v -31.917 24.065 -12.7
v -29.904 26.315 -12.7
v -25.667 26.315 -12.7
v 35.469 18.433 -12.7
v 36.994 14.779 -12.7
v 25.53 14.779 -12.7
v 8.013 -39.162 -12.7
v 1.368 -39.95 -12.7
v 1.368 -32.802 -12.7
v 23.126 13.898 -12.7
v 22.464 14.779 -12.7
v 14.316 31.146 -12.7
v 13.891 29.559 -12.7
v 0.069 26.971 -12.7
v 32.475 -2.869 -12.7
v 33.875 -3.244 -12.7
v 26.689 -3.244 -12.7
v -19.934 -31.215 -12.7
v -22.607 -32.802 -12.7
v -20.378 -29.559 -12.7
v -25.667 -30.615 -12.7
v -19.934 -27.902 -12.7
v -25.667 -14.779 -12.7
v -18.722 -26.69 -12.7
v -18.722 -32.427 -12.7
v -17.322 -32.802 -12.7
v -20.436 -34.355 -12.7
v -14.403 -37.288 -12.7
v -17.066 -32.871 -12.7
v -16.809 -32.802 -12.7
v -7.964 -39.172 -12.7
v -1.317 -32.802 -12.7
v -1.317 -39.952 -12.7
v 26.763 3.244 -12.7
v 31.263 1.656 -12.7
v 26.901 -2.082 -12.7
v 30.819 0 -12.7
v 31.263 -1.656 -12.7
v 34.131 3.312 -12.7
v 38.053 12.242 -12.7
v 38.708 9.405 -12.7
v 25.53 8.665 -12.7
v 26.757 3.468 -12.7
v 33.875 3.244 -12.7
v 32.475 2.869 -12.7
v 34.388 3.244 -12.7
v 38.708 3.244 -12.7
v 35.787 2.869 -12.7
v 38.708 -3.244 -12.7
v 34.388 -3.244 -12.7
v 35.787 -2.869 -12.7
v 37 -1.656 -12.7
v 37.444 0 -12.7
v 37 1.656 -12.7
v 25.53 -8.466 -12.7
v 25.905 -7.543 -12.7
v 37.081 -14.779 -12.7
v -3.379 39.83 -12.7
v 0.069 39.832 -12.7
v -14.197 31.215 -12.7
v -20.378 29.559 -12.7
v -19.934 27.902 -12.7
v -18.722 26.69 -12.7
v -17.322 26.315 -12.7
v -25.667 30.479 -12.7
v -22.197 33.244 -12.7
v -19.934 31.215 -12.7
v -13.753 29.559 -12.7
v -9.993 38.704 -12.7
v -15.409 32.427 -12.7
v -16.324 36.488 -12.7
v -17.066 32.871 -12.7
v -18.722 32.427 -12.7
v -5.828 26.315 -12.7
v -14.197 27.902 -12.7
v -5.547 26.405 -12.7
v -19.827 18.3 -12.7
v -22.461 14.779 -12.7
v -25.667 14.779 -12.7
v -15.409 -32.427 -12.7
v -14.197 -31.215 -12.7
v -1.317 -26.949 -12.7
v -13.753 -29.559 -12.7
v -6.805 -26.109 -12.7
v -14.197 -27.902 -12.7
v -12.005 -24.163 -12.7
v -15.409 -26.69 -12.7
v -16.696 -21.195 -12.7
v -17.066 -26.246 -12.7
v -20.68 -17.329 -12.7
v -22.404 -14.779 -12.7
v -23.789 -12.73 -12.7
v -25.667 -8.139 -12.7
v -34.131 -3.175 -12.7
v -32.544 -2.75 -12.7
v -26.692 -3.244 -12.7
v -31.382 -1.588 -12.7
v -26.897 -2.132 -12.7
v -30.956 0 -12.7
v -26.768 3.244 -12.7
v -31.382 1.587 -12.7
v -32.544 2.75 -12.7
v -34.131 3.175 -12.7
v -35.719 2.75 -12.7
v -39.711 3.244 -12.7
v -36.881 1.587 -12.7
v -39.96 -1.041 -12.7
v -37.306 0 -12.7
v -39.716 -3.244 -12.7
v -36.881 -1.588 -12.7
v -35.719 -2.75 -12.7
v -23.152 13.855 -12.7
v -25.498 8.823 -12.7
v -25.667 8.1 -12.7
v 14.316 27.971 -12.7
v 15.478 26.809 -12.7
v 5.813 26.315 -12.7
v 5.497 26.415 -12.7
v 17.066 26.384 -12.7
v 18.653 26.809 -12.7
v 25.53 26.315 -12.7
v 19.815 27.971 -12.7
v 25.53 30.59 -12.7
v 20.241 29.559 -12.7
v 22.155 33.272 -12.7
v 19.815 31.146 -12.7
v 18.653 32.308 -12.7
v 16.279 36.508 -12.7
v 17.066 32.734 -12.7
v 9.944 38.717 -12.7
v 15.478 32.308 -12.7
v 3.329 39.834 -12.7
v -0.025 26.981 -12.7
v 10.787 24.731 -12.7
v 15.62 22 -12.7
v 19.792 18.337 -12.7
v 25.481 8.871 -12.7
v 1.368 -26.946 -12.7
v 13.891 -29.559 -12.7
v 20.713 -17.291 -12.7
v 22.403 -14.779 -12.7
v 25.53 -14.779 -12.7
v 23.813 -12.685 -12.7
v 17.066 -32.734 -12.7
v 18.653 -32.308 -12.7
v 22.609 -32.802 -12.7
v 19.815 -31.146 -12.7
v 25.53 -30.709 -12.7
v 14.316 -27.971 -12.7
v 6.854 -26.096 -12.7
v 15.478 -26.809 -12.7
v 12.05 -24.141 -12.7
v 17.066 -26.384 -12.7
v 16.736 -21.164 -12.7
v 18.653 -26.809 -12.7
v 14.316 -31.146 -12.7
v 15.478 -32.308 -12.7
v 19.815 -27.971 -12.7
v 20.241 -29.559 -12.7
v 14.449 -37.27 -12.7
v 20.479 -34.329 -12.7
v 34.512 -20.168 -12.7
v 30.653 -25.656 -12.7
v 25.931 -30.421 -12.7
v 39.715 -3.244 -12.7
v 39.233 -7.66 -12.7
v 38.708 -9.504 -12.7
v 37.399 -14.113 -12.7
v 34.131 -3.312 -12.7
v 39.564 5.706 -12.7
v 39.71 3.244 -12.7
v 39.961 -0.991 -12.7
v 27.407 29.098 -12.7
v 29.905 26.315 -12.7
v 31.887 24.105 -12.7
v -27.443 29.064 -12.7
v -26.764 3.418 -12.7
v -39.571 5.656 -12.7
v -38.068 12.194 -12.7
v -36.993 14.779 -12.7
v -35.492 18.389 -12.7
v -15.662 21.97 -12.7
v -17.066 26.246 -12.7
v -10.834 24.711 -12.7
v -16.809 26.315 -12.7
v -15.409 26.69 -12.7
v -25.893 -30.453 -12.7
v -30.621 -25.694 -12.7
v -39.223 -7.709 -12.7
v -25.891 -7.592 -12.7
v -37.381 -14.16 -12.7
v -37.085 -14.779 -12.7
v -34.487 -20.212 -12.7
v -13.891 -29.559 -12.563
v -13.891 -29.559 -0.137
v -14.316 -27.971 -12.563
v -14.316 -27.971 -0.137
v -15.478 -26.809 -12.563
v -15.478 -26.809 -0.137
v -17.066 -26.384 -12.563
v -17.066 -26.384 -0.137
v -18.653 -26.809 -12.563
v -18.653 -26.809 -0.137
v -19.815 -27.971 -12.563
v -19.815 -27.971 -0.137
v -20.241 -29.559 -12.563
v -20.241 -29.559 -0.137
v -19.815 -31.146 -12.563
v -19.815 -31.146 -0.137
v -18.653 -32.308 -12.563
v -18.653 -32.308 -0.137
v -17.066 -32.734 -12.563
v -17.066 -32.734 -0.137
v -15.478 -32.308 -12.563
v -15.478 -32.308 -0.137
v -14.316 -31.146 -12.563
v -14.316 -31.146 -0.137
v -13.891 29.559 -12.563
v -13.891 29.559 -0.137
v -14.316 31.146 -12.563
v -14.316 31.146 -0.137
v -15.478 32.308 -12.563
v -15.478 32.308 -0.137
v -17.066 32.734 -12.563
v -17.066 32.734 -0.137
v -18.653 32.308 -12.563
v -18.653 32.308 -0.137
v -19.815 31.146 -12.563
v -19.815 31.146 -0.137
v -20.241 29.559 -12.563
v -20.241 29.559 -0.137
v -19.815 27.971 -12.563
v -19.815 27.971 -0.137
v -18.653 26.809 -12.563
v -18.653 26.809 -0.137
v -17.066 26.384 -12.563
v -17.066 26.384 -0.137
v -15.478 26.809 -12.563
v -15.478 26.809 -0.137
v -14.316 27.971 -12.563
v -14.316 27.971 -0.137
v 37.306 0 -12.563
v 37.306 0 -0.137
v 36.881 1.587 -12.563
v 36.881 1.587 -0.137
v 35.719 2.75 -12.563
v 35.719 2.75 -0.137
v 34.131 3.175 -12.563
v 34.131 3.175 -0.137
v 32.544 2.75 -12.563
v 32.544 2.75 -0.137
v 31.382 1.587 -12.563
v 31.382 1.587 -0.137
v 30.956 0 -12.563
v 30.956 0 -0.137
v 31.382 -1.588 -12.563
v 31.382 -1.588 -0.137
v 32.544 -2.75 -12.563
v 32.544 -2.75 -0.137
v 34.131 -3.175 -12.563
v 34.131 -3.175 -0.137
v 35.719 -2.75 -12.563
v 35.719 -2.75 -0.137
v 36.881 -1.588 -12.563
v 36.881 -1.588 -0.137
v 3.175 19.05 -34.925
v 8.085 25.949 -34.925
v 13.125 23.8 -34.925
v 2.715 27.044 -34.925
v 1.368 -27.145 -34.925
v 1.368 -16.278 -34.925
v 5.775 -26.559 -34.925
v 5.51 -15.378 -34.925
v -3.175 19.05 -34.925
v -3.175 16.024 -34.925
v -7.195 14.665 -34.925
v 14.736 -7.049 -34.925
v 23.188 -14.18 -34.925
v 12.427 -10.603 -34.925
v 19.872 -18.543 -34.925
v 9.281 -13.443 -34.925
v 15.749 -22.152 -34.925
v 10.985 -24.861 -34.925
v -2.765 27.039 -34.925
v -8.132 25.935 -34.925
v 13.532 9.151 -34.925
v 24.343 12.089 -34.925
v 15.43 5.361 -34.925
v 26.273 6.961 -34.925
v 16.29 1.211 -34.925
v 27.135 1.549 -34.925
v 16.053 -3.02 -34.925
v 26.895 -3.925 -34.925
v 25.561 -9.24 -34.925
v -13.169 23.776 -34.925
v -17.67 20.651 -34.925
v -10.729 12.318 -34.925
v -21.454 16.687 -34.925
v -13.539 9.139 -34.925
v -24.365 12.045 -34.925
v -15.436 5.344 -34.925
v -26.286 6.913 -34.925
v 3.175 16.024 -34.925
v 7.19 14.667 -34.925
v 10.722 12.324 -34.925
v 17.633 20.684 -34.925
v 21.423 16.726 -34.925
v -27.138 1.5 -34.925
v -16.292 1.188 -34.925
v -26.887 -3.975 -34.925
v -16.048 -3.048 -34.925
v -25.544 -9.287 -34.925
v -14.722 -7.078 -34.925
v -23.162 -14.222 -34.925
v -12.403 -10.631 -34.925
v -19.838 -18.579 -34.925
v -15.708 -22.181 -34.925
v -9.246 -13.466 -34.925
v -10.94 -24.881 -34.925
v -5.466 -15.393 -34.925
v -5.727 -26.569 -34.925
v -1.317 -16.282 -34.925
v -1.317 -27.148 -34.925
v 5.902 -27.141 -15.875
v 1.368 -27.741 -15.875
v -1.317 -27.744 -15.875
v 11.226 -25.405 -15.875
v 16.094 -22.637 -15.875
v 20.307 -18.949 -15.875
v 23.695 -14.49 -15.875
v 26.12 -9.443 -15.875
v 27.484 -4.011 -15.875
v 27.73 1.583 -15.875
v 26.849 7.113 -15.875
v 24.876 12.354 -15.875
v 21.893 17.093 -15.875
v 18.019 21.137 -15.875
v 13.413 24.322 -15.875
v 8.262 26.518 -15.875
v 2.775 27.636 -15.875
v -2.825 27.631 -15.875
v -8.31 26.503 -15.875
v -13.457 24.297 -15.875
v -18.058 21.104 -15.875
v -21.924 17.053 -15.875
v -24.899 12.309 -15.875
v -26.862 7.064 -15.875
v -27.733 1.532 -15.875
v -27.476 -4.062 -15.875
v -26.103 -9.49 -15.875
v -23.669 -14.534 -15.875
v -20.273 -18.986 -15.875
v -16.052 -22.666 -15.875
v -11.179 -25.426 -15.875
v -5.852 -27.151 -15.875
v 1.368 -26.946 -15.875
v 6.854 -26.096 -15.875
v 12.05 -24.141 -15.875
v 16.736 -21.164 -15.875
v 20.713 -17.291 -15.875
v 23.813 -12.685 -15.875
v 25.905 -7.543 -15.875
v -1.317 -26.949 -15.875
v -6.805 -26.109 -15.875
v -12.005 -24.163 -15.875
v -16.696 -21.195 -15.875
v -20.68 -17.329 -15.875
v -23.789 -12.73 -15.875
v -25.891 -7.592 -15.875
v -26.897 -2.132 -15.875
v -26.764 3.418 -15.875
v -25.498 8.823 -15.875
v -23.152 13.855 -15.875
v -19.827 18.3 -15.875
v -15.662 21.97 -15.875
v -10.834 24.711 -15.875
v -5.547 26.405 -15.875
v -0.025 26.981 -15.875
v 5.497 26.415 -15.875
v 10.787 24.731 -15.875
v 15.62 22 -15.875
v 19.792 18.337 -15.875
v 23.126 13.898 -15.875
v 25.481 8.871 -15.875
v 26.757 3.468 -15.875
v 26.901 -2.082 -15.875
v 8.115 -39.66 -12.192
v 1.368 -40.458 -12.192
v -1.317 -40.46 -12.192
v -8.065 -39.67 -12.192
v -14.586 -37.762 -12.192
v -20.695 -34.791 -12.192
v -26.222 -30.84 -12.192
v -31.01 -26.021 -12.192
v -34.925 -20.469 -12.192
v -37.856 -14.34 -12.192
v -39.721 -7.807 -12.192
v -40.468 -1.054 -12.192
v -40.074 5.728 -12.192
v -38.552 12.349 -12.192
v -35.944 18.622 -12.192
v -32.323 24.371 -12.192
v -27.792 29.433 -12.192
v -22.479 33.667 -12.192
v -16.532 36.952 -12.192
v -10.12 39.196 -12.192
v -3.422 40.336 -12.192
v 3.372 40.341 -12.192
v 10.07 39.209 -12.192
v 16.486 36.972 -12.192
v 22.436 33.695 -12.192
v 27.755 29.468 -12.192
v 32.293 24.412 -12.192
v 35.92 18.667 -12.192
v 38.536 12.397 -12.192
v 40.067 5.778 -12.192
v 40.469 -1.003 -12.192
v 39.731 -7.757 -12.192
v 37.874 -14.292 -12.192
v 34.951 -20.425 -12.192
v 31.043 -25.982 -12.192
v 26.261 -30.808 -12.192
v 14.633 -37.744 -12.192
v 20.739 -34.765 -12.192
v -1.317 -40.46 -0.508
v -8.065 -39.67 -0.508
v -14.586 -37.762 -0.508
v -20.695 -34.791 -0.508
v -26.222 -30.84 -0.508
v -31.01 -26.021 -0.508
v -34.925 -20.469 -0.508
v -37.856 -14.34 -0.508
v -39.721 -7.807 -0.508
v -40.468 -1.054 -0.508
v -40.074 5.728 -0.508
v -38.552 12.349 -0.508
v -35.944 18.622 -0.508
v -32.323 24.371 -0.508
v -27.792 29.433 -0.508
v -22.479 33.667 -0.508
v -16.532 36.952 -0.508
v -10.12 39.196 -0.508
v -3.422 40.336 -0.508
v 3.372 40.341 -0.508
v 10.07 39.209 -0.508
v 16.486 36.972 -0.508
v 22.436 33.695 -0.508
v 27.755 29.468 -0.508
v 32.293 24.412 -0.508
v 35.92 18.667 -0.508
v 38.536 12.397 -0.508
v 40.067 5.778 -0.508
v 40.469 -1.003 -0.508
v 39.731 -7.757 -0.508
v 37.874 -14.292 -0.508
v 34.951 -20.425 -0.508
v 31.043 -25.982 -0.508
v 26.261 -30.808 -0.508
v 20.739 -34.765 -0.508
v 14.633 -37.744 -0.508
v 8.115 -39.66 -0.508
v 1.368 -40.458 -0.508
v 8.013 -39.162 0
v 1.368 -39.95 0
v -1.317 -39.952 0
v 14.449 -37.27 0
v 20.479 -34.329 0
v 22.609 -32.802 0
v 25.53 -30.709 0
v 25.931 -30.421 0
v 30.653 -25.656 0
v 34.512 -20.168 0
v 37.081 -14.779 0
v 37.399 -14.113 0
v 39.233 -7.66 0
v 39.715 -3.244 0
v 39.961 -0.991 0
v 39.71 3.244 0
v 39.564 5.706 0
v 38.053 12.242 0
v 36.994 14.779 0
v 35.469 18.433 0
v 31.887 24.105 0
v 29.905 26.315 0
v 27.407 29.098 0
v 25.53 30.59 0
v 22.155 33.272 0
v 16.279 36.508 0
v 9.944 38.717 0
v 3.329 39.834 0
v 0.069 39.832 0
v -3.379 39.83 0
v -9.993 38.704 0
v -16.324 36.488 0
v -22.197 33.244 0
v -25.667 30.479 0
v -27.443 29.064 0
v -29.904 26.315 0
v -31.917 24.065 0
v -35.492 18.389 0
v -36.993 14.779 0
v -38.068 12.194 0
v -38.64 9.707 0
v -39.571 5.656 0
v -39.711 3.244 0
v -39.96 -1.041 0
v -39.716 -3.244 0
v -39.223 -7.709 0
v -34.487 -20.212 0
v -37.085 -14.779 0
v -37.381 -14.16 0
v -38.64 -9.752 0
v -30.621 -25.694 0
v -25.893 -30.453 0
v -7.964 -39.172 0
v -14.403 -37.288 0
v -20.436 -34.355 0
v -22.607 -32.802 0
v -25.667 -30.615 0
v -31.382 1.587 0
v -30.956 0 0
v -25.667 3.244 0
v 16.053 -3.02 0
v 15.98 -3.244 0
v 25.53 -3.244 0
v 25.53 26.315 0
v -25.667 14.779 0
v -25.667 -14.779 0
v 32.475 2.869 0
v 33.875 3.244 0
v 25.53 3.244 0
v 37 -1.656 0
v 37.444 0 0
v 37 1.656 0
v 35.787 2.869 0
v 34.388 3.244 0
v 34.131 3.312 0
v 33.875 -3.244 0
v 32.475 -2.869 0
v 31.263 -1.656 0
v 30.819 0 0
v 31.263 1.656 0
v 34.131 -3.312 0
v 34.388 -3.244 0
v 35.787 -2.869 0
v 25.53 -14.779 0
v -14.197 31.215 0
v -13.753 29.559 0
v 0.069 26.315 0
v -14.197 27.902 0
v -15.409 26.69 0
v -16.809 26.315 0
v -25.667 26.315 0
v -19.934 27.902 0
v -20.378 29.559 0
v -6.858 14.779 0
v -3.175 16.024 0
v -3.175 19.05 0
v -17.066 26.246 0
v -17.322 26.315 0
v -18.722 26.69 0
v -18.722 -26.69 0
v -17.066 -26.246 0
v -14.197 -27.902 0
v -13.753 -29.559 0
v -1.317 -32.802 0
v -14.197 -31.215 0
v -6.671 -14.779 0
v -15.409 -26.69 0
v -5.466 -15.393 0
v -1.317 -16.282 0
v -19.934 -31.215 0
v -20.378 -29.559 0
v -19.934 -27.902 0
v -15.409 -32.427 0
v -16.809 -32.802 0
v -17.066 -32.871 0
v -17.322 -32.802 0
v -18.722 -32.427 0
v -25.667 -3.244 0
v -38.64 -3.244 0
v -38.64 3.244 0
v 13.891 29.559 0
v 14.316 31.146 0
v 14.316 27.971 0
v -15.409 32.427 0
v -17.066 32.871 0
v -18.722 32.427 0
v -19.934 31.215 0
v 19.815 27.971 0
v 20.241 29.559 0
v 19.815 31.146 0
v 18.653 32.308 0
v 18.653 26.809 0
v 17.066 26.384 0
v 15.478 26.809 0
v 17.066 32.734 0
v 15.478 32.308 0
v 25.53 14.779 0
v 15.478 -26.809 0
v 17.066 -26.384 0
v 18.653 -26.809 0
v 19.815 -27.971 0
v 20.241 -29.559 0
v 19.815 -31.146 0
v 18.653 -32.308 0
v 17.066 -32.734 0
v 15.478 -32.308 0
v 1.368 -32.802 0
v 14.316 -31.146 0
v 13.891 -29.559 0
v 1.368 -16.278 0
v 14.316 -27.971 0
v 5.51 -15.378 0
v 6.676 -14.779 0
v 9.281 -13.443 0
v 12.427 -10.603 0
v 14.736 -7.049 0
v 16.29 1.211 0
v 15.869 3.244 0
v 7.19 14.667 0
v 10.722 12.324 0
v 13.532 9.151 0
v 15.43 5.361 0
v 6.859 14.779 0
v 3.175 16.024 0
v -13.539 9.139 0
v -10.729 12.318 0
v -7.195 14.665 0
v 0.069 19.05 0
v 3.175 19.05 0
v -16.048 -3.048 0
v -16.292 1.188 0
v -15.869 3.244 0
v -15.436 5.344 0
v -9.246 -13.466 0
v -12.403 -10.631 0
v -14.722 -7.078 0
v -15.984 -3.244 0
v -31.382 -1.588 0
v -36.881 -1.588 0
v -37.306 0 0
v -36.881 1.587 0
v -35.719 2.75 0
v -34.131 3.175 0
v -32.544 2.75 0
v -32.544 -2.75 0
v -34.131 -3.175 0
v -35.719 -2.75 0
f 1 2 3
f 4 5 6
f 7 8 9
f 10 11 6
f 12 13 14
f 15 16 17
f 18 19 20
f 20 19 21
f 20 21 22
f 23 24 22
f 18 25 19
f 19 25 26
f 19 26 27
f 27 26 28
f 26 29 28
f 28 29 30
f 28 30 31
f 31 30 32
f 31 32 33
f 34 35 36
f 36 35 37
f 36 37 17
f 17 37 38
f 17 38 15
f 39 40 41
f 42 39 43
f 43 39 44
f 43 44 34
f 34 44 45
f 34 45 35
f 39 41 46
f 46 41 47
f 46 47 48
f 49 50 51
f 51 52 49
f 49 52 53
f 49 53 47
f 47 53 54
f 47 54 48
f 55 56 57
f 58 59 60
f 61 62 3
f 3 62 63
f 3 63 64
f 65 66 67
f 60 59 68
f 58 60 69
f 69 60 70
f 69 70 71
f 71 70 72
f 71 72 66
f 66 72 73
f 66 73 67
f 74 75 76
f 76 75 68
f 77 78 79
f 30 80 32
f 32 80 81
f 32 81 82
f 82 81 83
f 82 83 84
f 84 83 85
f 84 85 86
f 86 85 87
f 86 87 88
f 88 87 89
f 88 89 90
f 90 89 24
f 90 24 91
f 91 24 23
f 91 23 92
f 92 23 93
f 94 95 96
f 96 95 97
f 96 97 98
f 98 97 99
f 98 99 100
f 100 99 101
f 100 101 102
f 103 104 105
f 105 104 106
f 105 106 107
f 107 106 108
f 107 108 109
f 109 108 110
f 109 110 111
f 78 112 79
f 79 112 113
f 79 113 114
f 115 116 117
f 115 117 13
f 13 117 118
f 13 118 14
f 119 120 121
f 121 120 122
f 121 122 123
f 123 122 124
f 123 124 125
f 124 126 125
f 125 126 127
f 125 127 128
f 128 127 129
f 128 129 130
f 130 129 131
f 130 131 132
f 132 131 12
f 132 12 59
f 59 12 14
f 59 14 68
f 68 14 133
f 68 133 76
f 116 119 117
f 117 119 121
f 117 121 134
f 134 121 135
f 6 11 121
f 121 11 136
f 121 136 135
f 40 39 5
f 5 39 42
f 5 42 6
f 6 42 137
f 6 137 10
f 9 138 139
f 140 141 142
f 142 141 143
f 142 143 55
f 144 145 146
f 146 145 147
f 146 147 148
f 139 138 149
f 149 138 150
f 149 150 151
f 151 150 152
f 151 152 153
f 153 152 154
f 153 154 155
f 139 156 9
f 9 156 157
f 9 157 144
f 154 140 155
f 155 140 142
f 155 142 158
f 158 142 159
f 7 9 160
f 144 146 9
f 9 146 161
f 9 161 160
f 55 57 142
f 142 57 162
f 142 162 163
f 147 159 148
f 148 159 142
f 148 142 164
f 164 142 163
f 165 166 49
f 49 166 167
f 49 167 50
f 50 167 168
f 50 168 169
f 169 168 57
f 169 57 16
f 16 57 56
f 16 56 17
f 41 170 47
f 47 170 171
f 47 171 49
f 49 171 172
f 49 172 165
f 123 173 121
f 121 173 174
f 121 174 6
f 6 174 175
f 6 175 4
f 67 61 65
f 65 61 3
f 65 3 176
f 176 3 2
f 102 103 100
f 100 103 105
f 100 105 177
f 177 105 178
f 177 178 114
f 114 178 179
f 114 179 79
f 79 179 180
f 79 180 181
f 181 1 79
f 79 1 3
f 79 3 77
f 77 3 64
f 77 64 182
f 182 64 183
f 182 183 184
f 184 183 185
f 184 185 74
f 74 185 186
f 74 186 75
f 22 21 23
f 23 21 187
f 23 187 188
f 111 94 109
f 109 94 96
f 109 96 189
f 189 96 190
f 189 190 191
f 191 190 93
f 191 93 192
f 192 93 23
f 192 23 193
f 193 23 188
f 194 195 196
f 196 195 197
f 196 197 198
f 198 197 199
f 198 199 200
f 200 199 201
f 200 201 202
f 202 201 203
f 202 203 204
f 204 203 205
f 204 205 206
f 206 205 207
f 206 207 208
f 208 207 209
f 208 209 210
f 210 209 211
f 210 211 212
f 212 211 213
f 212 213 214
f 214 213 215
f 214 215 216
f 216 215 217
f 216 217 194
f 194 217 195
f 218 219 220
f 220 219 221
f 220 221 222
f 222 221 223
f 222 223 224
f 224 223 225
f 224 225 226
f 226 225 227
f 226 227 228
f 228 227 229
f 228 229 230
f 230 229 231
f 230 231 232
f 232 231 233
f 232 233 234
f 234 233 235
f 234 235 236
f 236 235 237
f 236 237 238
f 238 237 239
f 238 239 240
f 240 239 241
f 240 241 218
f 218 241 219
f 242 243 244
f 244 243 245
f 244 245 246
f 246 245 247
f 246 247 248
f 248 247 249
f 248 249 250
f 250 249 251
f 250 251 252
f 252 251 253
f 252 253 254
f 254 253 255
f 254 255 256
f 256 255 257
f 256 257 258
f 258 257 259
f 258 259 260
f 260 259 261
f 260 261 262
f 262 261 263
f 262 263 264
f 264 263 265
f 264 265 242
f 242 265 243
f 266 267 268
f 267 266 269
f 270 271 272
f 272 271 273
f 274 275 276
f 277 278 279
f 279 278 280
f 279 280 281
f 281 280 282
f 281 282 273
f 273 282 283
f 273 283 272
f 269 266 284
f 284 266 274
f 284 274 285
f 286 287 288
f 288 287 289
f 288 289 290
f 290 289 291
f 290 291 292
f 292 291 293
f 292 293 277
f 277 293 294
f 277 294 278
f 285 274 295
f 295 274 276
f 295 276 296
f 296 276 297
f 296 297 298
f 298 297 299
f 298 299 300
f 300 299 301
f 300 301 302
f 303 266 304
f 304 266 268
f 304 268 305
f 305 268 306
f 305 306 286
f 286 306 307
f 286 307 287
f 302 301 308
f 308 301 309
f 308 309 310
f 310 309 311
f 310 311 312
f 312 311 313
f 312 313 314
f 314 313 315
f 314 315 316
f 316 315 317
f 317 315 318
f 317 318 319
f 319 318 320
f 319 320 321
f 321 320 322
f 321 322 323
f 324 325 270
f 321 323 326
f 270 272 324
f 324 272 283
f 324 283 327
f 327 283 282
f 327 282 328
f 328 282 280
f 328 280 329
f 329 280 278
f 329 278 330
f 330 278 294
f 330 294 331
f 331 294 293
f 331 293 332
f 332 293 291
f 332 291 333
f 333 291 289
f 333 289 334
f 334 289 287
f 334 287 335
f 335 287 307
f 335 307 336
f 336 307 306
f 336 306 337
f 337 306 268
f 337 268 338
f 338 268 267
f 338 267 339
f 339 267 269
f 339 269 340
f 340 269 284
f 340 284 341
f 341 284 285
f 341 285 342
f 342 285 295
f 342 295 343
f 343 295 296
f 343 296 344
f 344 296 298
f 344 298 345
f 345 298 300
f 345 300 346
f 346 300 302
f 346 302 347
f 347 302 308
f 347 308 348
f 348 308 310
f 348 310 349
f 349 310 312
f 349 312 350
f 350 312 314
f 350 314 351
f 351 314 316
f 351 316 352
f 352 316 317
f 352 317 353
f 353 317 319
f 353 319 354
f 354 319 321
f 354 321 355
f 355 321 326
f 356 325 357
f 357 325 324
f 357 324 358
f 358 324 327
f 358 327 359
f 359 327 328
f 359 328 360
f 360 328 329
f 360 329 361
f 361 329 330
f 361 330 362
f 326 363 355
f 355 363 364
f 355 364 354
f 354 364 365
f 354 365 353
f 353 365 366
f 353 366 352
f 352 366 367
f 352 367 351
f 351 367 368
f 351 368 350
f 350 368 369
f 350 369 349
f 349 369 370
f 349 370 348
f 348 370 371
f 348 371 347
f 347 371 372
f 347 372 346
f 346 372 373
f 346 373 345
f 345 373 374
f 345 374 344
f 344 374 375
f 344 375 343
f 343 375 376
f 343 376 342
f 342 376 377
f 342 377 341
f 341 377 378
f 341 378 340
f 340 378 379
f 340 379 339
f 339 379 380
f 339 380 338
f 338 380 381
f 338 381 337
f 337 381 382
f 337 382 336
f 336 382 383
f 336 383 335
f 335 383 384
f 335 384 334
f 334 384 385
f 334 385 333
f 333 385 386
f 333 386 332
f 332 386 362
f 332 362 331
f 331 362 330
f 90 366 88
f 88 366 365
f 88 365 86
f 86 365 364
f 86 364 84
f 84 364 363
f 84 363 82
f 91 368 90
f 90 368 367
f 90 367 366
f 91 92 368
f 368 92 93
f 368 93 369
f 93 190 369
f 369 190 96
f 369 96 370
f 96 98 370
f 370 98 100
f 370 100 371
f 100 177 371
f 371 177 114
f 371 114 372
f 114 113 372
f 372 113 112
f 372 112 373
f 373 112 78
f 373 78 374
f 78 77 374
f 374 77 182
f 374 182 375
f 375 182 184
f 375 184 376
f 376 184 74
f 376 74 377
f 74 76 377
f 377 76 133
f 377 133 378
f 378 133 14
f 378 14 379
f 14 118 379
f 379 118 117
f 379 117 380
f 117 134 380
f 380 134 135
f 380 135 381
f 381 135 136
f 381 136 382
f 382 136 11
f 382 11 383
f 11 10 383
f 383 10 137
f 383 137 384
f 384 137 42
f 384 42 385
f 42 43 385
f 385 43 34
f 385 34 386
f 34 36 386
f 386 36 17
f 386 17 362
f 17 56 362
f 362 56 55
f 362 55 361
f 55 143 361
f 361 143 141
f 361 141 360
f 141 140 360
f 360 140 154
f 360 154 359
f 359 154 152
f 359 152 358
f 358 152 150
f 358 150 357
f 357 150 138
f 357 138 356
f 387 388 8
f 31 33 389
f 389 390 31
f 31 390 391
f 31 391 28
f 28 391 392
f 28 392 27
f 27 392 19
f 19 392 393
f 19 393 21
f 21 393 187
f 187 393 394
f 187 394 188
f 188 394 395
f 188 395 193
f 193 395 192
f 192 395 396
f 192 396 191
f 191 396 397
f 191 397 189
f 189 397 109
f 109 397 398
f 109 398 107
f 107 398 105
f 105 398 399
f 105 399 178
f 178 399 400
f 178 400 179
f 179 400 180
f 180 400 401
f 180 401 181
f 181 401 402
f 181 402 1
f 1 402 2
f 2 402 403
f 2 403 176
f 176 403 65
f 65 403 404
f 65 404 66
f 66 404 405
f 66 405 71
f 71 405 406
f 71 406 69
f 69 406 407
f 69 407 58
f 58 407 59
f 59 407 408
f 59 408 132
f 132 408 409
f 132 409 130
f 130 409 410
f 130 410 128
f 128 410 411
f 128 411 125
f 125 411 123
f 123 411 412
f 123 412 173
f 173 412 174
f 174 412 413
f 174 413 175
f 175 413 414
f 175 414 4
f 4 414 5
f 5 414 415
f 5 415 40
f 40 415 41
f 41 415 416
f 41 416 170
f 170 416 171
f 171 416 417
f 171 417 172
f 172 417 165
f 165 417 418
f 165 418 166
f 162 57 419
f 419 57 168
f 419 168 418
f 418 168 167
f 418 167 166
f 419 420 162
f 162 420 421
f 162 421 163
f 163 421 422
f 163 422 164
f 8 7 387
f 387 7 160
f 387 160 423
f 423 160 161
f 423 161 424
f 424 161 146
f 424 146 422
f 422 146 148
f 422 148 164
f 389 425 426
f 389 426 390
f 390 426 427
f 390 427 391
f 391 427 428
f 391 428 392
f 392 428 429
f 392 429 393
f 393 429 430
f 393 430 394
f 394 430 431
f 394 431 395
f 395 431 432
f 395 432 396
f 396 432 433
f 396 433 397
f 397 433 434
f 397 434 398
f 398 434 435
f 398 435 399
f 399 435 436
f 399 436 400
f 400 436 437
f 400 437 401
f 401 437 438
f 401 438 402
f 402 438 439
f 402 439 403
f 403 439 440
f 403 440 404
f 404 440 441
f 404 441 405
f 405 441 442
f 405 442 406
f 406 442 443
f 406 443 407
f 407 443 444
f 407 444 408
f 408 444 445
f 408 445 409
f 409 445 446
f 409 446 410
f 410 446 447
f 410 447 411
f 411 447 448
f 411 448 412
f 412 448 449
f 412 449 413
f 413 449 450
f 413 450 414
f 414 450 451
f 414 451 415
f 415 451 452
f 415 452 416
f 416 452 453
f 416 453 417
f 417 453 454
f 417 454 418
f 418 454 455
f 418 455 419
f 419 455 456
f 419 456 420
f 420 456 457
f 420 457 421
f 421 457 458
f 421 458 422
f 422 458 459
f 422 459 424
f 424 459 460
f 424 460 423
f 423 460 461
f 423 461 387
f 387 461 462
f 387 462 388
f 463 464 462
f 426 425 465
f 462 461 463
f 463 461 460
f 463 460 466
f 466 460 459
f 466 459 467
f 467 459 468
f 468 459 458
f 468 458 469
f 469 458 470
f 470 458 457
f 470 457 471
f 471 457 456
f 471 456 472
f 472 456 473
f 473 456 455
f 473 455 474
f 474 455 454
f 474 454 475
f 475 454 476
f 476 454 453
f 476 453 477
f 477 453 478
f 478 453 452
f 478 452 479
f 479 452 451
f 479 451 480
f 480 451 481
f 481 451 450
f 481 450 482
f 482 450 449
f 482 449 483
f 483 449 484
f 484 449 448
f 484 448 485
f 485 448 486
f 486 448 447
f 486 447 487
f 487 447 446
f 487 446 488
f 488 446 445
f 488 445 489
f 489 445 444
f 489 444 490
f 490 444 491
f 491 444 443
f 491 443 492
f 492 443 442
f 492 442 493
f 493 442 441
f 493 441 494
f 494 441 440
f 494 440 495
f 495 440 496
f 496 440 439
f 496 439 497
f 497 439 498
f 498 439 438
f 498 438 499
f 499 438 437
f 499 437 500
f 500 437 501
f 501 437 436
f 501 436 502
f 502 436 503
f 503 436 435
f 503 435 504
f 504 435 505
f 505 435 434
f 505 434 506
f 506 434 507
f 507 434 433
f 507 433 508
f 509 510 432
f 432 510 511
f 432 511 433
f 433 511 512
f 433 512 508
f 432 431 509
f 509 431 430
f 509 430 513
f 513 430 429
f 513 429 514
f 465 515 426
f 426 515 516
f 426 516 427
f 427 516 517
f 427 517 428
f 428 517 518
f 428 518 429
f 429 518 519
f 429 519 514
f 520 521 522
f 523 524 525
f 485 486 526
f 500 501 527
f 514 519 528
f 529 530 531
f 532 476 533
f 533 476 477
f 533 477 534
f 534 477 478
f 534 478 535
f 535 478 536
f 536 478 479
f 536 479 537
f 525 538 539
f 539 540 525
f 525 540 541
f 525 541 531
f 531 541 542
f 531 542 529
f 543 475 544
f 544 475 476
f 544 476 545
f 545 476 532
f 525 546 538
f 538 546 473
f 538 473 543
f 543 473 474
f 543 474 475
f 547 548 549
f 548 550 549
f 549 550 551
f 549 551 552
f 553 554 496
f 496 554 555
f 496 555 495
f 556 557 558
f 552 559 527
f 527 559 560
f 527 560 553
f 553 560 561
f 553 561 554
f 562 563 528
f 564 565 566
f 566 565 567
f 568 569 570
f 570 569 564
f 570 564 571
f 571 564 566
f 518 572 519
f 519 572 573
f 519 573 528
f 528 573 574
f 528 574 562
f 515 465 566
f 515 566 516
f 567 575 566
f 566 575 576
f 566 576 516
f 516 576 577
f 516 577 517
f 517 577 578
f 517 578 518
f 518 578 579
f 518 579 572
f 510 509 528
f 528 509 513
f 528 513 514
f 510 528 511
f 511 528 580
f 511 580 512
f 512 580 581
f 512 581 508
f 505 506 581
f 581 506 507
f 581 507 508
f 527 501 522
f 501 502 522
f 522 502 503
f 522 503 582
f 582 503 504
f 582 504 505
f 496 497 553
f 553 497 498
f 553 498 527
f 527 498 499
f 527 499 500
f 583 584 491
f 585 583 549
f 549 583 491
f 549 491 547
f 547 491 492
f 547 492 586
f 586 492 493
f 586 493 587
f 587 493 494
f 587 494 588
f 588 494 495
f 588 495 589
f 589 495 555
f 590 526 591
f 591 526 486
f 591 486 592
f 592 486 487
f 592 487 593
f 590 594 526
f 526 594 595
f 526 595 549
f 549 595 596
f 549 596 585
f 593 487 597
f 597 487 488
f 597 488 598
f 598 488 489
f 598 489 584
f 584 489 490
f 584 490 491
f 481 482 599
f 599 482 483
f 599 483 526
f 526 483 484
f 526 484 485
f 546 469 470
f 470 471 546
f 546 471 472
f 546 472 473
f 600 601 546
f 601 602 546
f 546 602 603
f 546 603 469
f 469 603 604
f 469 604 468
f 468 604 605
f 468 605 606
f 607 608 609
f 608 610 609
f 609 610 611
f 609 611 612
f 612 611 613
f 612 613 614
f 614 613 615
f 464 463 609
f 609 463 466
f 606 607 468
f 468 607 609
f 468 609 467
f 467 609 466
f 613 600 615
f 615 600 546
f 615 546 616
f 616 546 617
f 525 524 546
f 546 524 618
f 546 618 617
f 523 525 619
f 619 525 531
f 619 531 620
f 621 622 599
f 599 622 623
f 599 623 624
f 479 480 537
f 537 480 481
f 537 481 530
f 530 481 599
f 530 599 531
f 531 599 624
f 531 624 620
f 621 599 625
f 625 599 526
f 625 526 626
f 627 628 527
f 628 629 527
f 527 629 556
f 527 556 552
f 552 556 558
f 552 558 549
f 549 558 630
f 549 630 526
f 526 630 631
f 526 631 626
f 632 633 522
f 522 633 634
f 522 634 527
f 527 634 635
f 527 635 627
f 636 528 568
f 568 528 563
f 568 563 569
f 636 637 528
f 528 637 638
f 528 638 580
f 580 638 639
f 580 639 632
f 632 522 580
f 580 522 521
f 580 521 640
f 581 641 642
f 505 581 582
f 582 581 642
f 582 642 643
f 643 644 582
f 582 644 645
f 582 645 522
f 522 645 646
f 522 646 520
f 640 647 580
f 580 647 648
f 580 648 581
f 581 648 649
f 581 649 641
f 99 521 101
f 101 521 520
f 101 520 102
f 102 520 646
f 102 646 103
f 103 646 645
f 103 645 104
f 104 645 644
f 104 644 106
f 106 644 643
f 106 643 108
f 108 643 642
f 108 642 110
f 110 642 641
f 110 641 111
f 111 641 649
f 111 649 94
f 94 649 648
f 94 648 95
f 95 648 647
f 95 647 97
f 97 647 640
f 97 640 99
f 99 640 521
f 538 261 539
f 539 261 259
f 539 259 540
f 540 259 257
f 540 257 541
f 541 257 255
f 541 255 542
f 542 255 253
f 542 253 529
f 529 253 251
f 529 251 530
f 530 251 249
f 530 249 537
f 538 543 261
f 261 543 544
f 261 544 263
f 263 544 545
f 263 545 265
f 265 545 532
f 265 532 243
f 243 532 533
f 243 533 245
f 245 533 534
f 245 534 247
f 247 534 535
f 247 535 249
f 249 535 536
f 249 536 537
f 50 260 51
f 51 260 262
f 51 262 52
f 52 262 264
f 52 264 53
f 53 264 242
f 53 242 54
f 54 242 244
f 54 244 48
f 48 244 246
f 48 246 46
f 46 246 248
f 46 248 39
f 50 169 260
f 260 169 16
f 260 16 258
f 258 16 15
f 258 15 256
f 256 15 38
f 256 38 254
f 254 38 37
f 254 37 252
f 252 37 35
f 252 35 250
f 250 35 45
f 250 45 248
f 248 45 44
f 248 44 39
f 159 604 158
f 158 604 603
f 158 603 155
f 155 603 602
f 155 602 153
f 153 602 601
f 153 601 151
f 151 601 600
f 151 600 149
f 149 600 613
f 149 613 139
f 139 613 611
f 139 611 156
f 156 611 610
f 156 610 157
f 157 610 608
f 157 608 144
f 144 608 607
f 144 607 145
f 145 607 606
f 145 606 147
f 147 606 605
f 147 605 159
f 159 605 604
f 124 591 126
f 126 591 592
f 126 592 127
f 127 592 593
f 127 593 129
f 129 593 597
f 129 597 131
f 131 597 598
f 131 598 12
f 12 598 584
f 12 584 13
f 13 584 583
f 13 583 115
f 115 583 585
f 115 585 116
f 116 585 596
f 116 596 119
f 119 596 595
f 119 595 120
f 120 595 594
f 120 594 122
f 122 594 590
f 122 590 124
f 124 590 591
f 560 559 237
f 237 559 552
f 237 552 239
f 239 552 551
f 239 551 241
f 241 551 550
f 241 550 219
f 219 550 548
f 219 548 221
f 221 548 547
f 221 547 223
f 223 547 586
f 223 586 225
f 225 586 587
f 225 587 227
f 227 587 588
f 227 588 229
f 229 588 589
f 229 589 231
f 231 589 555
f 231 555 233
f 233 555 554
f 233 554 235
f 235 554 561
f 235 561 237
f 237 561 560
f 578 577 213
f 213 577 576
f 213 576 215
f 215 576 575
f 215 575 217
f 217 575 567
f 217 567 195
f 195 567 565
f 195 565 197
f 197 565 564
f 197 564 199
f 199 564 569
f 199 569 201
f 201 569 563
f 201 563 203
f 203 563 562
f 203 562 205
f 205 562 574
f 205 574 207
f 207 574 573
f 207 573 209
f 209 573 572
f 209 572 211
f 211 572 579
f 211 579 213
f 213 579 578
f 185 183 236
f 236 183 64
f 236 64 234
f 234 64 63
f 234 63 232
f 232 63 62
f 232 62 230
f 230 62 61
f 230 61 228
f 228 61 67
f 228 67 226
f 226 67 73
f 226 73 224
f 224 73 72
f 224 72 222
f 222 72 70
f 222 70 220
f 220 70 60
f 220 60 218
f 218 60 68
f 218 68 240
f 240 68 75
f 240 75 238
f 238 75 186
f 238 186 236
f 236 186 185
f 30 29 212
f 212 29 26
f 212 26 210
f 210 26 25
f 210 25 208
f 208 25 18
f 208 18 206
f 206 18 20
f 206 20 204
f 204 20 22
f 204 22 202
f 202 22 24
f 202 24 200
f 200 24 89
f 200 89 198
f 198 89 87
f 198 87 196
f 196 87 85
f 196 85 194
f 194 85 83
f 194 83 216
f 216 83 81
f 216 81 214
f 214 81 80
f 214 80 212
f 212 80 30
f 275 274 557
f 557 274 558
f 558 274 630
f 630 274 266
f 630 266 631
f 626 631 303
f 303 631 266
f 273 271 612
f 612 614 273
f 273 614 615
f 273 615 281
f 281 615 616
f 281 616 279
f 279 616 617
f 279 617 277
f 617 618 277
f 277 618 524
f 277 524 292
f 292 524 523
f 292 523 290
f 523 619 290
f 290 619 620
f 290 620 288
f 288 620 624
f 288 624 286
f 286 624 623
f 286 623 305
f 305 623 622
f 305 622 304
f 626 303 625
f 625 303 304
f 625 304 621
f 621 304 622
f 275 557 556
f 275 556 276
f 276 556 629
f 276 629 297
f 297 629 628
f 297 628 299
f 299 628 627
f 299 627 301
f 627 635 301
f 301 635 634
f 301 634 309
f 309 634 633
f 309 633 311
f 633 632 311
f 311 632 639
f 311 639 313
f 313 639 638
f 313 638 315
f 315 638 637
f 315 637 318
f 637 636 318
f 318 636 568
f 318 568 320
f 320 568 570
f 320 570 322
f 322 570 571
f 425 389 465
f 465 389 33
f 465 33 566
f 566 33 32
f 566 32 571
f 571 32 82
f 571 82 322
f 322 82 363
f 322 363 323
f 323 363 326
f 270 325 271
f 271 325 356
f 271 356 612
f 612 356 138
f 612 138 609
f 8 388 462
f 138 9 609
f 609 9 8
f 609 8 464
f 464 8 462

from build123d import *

# Parameters (mm, degrees)
SKETCH3_W           = 1.016
SKETCH3_H           = 40.48125
CUT_EXTRUDE1_DEPTH  = 68.06130649
CUT_EXTRUDE2_REACH  = 69.061
SKETCH4_R           = 3.175
CIRPATTERN1_COUNT   = 3
SKETCH16_W          = 6.35
SKETCH16_H          = 6.35
CUT_EXTRUDE7_DEPTH  = 68.06130649
SKETCH24_R          = 16.335149264
CUT_EXTRUDE13_DEPTH = 68.06130649
SKETCH25_W          = 2.685482999
SKETCH25_H          = 26.348135083
CUT_EXTRUDE14_DEPTH = 68.06130649


# Read off the part's stored shape, not the designer's step: Cut-Extrude3, Cut-Extrude4
with BuildPart() as part:
    # Sketch1 → Revolve1 (revolve)
    with BuildSketch(Plane(origin=(0, 0, 0), x_dir=(0, 0, -1), z_dir=(1, 0, 0)), mode=Mode.PRIVATE) as revolve1_sk:
        Polygon((34.925, -27.1795875), (15.875, -27.7749), (15.875, -26.98115), (12.7, -26.98115), (12.7, -39.97325), (12.192, -40.48125), (0.508, -40.48125), (0, -39.97325), (0, -15.875), (34.925, -15.875), align=None)
    revolve(revolve1_sk.sketch.rotate(Axis((0, 0, 0), (0, 0, -1)), 270), axis=Axis((0, 0, 0), (0, 0, -1)))

    # Sketch3 → Cut-Extrude1 (cut, through all)
    with BuildSketch(Plane.XY):
        with Locations((0, -20.240625)):
            Rectangle(SKETCH3_W, SKETCH3_H)
    extrude(amount=-CUT_EXTRUDE1_DEPTH, mode=Mode.SUBTRACT)

    # Sketch4 → Cut-Extrude2 (cut, up to next)
    with BuildSketch(Plane.XY, mode=Mode.PRIVATE) as cut_extrude2_sk1:
        with Locations((34.13125, 0)):
            Circle(SKETCH4_R)
    cut_extrude2_tool1 = extrude(cut_extrude2_sk1.sketch, amount=-CUT_EXTRUDE2_REACH, mode=Mode.PRIVATE) & part.part
    # Sketch4 → Cut-Extrude2 (cut, up to next)
    with BuildSketch(Plane.XY, mode=Mode.PRIVATE) as cut_extrude2_sk2:
        with Locations((-34.13125, 0)):
            Circle(SKETCH4_R)
    cut_extrude2_tool2 = extrude(cut_extrude2_sk2.sketch, amount=-CUT_EXTRUDE2_REACH, mode=Mode.PRIVATE) & part.part
    cut_extrude2_1 = cut_extrude2_tool1.solids().sort_by_distance((34.13125, 0, 0))[0]
    add(cut_extrude2_1, mode=Mode.SUBTRACT)
    cut_extrude2_2 = cut_extrude2_tool2.solids().sort_by_distance((-34.13125, 0, 0))[0]
    add(cut_extrude2_2, mode=Mode.SUBTRACT)
    cut_extrude2 = cut_extrude2_1 + cut_extrude2_2  # Cut-Extrude2 as one shape, for the pattern or mirror that repeats it

    # Cut-Extrude3 outline → Cut-Extrude3 (revolve, cut)
    with BuildSketch(Plane(origin=(34.13125, 0, 0), x_dir=(1, 0, 0), z_dir=(0, -1, 0))):
        Polygon((3.175, 0), (3.175, -0.137481533), (3.312481533, 0), align=None)
    cut_extrude3 = revolve(axis=Axis((34.13125, 0, 0), (0, 0, 1)), mode=Mode.SUBTRACT)

    # Cut-Extrude4 outline → Cut-Extrude4 (revolve, cut)
    with BuildSketch(Plane(origin=(34.13125, 0, 0), x_dir=(1, 0, 0), z_dir=(0, -1, 0))):
        Polygon((3.312481533, -12.7), (3.175, -12.562518467), (3.175, -12.7), align=None)
    cut_extrude4 = revolve(axis=Axis((34.13125, 0, 0), (0, 0, 1)), mode=Mode.SUBTRACT)

    # CirPattern1: Cut-Extrude2, Cut-Extrude3, Cut-Extrude4 ×3 about axis
    cirpattern1_axis = Axis((0, 0, 0), (0, 0, 1))
    add([cut_extrude2.rotate(cirpattern1_axis, i * 360 / CIRPATTERN1_COUNT) for i in range(1, CIRPATTERN1_COUNT)], mode=Mode.SUBTRACT)
    add([cut_extrude3.rotate(cirpattern1_axis, i * 360 / CIRPATTERN1_COUNT) for i in range(1, CIRPATTERN1_COUNT)], mode=Mode.SUBTRACT)
    add([cut_extrude4.rotate(cirpattern1_axis, i * 360 / CIRPATTERN1_COUNT) for i in range(1, CIRPATTERN1_COUNT)], mode=Mode.SUBTRACT)

    # Sketch16 → Cut-Extrude7 (cut, through all)
    with BuildSketch(Plane.XY):
        with Locations((0, 15.875)):
            Rectangle(SKETCH16_W, SKETCH16_H)
    extrude(amount=-CUT_EXTRUDE7_DEPTH, mode=Mode.SUBTRACT)

    # Sketch24 → Cut-Extrude13 (cut, through all)
    with BuildSketch(Plane.XY):
        Circle(SKETCH24_R)
    extrude(amount=-CUT_EXTRUDE13_DEPTH, mode=Mode.SUBTRACT)

    # Sketch25 → Cut-Extrude14 (cut, through all)
    with BuildSketch(Plane.XY):
        with Locations((0.025334746, -28.373320916)):
            Rectangle(SKETCH25_W, SKETCH25_H)
    extrude(amount=-CUT_EXTRUDE14_DEPTH, mode=Mode.SUBTRACT)


solid = part.part
